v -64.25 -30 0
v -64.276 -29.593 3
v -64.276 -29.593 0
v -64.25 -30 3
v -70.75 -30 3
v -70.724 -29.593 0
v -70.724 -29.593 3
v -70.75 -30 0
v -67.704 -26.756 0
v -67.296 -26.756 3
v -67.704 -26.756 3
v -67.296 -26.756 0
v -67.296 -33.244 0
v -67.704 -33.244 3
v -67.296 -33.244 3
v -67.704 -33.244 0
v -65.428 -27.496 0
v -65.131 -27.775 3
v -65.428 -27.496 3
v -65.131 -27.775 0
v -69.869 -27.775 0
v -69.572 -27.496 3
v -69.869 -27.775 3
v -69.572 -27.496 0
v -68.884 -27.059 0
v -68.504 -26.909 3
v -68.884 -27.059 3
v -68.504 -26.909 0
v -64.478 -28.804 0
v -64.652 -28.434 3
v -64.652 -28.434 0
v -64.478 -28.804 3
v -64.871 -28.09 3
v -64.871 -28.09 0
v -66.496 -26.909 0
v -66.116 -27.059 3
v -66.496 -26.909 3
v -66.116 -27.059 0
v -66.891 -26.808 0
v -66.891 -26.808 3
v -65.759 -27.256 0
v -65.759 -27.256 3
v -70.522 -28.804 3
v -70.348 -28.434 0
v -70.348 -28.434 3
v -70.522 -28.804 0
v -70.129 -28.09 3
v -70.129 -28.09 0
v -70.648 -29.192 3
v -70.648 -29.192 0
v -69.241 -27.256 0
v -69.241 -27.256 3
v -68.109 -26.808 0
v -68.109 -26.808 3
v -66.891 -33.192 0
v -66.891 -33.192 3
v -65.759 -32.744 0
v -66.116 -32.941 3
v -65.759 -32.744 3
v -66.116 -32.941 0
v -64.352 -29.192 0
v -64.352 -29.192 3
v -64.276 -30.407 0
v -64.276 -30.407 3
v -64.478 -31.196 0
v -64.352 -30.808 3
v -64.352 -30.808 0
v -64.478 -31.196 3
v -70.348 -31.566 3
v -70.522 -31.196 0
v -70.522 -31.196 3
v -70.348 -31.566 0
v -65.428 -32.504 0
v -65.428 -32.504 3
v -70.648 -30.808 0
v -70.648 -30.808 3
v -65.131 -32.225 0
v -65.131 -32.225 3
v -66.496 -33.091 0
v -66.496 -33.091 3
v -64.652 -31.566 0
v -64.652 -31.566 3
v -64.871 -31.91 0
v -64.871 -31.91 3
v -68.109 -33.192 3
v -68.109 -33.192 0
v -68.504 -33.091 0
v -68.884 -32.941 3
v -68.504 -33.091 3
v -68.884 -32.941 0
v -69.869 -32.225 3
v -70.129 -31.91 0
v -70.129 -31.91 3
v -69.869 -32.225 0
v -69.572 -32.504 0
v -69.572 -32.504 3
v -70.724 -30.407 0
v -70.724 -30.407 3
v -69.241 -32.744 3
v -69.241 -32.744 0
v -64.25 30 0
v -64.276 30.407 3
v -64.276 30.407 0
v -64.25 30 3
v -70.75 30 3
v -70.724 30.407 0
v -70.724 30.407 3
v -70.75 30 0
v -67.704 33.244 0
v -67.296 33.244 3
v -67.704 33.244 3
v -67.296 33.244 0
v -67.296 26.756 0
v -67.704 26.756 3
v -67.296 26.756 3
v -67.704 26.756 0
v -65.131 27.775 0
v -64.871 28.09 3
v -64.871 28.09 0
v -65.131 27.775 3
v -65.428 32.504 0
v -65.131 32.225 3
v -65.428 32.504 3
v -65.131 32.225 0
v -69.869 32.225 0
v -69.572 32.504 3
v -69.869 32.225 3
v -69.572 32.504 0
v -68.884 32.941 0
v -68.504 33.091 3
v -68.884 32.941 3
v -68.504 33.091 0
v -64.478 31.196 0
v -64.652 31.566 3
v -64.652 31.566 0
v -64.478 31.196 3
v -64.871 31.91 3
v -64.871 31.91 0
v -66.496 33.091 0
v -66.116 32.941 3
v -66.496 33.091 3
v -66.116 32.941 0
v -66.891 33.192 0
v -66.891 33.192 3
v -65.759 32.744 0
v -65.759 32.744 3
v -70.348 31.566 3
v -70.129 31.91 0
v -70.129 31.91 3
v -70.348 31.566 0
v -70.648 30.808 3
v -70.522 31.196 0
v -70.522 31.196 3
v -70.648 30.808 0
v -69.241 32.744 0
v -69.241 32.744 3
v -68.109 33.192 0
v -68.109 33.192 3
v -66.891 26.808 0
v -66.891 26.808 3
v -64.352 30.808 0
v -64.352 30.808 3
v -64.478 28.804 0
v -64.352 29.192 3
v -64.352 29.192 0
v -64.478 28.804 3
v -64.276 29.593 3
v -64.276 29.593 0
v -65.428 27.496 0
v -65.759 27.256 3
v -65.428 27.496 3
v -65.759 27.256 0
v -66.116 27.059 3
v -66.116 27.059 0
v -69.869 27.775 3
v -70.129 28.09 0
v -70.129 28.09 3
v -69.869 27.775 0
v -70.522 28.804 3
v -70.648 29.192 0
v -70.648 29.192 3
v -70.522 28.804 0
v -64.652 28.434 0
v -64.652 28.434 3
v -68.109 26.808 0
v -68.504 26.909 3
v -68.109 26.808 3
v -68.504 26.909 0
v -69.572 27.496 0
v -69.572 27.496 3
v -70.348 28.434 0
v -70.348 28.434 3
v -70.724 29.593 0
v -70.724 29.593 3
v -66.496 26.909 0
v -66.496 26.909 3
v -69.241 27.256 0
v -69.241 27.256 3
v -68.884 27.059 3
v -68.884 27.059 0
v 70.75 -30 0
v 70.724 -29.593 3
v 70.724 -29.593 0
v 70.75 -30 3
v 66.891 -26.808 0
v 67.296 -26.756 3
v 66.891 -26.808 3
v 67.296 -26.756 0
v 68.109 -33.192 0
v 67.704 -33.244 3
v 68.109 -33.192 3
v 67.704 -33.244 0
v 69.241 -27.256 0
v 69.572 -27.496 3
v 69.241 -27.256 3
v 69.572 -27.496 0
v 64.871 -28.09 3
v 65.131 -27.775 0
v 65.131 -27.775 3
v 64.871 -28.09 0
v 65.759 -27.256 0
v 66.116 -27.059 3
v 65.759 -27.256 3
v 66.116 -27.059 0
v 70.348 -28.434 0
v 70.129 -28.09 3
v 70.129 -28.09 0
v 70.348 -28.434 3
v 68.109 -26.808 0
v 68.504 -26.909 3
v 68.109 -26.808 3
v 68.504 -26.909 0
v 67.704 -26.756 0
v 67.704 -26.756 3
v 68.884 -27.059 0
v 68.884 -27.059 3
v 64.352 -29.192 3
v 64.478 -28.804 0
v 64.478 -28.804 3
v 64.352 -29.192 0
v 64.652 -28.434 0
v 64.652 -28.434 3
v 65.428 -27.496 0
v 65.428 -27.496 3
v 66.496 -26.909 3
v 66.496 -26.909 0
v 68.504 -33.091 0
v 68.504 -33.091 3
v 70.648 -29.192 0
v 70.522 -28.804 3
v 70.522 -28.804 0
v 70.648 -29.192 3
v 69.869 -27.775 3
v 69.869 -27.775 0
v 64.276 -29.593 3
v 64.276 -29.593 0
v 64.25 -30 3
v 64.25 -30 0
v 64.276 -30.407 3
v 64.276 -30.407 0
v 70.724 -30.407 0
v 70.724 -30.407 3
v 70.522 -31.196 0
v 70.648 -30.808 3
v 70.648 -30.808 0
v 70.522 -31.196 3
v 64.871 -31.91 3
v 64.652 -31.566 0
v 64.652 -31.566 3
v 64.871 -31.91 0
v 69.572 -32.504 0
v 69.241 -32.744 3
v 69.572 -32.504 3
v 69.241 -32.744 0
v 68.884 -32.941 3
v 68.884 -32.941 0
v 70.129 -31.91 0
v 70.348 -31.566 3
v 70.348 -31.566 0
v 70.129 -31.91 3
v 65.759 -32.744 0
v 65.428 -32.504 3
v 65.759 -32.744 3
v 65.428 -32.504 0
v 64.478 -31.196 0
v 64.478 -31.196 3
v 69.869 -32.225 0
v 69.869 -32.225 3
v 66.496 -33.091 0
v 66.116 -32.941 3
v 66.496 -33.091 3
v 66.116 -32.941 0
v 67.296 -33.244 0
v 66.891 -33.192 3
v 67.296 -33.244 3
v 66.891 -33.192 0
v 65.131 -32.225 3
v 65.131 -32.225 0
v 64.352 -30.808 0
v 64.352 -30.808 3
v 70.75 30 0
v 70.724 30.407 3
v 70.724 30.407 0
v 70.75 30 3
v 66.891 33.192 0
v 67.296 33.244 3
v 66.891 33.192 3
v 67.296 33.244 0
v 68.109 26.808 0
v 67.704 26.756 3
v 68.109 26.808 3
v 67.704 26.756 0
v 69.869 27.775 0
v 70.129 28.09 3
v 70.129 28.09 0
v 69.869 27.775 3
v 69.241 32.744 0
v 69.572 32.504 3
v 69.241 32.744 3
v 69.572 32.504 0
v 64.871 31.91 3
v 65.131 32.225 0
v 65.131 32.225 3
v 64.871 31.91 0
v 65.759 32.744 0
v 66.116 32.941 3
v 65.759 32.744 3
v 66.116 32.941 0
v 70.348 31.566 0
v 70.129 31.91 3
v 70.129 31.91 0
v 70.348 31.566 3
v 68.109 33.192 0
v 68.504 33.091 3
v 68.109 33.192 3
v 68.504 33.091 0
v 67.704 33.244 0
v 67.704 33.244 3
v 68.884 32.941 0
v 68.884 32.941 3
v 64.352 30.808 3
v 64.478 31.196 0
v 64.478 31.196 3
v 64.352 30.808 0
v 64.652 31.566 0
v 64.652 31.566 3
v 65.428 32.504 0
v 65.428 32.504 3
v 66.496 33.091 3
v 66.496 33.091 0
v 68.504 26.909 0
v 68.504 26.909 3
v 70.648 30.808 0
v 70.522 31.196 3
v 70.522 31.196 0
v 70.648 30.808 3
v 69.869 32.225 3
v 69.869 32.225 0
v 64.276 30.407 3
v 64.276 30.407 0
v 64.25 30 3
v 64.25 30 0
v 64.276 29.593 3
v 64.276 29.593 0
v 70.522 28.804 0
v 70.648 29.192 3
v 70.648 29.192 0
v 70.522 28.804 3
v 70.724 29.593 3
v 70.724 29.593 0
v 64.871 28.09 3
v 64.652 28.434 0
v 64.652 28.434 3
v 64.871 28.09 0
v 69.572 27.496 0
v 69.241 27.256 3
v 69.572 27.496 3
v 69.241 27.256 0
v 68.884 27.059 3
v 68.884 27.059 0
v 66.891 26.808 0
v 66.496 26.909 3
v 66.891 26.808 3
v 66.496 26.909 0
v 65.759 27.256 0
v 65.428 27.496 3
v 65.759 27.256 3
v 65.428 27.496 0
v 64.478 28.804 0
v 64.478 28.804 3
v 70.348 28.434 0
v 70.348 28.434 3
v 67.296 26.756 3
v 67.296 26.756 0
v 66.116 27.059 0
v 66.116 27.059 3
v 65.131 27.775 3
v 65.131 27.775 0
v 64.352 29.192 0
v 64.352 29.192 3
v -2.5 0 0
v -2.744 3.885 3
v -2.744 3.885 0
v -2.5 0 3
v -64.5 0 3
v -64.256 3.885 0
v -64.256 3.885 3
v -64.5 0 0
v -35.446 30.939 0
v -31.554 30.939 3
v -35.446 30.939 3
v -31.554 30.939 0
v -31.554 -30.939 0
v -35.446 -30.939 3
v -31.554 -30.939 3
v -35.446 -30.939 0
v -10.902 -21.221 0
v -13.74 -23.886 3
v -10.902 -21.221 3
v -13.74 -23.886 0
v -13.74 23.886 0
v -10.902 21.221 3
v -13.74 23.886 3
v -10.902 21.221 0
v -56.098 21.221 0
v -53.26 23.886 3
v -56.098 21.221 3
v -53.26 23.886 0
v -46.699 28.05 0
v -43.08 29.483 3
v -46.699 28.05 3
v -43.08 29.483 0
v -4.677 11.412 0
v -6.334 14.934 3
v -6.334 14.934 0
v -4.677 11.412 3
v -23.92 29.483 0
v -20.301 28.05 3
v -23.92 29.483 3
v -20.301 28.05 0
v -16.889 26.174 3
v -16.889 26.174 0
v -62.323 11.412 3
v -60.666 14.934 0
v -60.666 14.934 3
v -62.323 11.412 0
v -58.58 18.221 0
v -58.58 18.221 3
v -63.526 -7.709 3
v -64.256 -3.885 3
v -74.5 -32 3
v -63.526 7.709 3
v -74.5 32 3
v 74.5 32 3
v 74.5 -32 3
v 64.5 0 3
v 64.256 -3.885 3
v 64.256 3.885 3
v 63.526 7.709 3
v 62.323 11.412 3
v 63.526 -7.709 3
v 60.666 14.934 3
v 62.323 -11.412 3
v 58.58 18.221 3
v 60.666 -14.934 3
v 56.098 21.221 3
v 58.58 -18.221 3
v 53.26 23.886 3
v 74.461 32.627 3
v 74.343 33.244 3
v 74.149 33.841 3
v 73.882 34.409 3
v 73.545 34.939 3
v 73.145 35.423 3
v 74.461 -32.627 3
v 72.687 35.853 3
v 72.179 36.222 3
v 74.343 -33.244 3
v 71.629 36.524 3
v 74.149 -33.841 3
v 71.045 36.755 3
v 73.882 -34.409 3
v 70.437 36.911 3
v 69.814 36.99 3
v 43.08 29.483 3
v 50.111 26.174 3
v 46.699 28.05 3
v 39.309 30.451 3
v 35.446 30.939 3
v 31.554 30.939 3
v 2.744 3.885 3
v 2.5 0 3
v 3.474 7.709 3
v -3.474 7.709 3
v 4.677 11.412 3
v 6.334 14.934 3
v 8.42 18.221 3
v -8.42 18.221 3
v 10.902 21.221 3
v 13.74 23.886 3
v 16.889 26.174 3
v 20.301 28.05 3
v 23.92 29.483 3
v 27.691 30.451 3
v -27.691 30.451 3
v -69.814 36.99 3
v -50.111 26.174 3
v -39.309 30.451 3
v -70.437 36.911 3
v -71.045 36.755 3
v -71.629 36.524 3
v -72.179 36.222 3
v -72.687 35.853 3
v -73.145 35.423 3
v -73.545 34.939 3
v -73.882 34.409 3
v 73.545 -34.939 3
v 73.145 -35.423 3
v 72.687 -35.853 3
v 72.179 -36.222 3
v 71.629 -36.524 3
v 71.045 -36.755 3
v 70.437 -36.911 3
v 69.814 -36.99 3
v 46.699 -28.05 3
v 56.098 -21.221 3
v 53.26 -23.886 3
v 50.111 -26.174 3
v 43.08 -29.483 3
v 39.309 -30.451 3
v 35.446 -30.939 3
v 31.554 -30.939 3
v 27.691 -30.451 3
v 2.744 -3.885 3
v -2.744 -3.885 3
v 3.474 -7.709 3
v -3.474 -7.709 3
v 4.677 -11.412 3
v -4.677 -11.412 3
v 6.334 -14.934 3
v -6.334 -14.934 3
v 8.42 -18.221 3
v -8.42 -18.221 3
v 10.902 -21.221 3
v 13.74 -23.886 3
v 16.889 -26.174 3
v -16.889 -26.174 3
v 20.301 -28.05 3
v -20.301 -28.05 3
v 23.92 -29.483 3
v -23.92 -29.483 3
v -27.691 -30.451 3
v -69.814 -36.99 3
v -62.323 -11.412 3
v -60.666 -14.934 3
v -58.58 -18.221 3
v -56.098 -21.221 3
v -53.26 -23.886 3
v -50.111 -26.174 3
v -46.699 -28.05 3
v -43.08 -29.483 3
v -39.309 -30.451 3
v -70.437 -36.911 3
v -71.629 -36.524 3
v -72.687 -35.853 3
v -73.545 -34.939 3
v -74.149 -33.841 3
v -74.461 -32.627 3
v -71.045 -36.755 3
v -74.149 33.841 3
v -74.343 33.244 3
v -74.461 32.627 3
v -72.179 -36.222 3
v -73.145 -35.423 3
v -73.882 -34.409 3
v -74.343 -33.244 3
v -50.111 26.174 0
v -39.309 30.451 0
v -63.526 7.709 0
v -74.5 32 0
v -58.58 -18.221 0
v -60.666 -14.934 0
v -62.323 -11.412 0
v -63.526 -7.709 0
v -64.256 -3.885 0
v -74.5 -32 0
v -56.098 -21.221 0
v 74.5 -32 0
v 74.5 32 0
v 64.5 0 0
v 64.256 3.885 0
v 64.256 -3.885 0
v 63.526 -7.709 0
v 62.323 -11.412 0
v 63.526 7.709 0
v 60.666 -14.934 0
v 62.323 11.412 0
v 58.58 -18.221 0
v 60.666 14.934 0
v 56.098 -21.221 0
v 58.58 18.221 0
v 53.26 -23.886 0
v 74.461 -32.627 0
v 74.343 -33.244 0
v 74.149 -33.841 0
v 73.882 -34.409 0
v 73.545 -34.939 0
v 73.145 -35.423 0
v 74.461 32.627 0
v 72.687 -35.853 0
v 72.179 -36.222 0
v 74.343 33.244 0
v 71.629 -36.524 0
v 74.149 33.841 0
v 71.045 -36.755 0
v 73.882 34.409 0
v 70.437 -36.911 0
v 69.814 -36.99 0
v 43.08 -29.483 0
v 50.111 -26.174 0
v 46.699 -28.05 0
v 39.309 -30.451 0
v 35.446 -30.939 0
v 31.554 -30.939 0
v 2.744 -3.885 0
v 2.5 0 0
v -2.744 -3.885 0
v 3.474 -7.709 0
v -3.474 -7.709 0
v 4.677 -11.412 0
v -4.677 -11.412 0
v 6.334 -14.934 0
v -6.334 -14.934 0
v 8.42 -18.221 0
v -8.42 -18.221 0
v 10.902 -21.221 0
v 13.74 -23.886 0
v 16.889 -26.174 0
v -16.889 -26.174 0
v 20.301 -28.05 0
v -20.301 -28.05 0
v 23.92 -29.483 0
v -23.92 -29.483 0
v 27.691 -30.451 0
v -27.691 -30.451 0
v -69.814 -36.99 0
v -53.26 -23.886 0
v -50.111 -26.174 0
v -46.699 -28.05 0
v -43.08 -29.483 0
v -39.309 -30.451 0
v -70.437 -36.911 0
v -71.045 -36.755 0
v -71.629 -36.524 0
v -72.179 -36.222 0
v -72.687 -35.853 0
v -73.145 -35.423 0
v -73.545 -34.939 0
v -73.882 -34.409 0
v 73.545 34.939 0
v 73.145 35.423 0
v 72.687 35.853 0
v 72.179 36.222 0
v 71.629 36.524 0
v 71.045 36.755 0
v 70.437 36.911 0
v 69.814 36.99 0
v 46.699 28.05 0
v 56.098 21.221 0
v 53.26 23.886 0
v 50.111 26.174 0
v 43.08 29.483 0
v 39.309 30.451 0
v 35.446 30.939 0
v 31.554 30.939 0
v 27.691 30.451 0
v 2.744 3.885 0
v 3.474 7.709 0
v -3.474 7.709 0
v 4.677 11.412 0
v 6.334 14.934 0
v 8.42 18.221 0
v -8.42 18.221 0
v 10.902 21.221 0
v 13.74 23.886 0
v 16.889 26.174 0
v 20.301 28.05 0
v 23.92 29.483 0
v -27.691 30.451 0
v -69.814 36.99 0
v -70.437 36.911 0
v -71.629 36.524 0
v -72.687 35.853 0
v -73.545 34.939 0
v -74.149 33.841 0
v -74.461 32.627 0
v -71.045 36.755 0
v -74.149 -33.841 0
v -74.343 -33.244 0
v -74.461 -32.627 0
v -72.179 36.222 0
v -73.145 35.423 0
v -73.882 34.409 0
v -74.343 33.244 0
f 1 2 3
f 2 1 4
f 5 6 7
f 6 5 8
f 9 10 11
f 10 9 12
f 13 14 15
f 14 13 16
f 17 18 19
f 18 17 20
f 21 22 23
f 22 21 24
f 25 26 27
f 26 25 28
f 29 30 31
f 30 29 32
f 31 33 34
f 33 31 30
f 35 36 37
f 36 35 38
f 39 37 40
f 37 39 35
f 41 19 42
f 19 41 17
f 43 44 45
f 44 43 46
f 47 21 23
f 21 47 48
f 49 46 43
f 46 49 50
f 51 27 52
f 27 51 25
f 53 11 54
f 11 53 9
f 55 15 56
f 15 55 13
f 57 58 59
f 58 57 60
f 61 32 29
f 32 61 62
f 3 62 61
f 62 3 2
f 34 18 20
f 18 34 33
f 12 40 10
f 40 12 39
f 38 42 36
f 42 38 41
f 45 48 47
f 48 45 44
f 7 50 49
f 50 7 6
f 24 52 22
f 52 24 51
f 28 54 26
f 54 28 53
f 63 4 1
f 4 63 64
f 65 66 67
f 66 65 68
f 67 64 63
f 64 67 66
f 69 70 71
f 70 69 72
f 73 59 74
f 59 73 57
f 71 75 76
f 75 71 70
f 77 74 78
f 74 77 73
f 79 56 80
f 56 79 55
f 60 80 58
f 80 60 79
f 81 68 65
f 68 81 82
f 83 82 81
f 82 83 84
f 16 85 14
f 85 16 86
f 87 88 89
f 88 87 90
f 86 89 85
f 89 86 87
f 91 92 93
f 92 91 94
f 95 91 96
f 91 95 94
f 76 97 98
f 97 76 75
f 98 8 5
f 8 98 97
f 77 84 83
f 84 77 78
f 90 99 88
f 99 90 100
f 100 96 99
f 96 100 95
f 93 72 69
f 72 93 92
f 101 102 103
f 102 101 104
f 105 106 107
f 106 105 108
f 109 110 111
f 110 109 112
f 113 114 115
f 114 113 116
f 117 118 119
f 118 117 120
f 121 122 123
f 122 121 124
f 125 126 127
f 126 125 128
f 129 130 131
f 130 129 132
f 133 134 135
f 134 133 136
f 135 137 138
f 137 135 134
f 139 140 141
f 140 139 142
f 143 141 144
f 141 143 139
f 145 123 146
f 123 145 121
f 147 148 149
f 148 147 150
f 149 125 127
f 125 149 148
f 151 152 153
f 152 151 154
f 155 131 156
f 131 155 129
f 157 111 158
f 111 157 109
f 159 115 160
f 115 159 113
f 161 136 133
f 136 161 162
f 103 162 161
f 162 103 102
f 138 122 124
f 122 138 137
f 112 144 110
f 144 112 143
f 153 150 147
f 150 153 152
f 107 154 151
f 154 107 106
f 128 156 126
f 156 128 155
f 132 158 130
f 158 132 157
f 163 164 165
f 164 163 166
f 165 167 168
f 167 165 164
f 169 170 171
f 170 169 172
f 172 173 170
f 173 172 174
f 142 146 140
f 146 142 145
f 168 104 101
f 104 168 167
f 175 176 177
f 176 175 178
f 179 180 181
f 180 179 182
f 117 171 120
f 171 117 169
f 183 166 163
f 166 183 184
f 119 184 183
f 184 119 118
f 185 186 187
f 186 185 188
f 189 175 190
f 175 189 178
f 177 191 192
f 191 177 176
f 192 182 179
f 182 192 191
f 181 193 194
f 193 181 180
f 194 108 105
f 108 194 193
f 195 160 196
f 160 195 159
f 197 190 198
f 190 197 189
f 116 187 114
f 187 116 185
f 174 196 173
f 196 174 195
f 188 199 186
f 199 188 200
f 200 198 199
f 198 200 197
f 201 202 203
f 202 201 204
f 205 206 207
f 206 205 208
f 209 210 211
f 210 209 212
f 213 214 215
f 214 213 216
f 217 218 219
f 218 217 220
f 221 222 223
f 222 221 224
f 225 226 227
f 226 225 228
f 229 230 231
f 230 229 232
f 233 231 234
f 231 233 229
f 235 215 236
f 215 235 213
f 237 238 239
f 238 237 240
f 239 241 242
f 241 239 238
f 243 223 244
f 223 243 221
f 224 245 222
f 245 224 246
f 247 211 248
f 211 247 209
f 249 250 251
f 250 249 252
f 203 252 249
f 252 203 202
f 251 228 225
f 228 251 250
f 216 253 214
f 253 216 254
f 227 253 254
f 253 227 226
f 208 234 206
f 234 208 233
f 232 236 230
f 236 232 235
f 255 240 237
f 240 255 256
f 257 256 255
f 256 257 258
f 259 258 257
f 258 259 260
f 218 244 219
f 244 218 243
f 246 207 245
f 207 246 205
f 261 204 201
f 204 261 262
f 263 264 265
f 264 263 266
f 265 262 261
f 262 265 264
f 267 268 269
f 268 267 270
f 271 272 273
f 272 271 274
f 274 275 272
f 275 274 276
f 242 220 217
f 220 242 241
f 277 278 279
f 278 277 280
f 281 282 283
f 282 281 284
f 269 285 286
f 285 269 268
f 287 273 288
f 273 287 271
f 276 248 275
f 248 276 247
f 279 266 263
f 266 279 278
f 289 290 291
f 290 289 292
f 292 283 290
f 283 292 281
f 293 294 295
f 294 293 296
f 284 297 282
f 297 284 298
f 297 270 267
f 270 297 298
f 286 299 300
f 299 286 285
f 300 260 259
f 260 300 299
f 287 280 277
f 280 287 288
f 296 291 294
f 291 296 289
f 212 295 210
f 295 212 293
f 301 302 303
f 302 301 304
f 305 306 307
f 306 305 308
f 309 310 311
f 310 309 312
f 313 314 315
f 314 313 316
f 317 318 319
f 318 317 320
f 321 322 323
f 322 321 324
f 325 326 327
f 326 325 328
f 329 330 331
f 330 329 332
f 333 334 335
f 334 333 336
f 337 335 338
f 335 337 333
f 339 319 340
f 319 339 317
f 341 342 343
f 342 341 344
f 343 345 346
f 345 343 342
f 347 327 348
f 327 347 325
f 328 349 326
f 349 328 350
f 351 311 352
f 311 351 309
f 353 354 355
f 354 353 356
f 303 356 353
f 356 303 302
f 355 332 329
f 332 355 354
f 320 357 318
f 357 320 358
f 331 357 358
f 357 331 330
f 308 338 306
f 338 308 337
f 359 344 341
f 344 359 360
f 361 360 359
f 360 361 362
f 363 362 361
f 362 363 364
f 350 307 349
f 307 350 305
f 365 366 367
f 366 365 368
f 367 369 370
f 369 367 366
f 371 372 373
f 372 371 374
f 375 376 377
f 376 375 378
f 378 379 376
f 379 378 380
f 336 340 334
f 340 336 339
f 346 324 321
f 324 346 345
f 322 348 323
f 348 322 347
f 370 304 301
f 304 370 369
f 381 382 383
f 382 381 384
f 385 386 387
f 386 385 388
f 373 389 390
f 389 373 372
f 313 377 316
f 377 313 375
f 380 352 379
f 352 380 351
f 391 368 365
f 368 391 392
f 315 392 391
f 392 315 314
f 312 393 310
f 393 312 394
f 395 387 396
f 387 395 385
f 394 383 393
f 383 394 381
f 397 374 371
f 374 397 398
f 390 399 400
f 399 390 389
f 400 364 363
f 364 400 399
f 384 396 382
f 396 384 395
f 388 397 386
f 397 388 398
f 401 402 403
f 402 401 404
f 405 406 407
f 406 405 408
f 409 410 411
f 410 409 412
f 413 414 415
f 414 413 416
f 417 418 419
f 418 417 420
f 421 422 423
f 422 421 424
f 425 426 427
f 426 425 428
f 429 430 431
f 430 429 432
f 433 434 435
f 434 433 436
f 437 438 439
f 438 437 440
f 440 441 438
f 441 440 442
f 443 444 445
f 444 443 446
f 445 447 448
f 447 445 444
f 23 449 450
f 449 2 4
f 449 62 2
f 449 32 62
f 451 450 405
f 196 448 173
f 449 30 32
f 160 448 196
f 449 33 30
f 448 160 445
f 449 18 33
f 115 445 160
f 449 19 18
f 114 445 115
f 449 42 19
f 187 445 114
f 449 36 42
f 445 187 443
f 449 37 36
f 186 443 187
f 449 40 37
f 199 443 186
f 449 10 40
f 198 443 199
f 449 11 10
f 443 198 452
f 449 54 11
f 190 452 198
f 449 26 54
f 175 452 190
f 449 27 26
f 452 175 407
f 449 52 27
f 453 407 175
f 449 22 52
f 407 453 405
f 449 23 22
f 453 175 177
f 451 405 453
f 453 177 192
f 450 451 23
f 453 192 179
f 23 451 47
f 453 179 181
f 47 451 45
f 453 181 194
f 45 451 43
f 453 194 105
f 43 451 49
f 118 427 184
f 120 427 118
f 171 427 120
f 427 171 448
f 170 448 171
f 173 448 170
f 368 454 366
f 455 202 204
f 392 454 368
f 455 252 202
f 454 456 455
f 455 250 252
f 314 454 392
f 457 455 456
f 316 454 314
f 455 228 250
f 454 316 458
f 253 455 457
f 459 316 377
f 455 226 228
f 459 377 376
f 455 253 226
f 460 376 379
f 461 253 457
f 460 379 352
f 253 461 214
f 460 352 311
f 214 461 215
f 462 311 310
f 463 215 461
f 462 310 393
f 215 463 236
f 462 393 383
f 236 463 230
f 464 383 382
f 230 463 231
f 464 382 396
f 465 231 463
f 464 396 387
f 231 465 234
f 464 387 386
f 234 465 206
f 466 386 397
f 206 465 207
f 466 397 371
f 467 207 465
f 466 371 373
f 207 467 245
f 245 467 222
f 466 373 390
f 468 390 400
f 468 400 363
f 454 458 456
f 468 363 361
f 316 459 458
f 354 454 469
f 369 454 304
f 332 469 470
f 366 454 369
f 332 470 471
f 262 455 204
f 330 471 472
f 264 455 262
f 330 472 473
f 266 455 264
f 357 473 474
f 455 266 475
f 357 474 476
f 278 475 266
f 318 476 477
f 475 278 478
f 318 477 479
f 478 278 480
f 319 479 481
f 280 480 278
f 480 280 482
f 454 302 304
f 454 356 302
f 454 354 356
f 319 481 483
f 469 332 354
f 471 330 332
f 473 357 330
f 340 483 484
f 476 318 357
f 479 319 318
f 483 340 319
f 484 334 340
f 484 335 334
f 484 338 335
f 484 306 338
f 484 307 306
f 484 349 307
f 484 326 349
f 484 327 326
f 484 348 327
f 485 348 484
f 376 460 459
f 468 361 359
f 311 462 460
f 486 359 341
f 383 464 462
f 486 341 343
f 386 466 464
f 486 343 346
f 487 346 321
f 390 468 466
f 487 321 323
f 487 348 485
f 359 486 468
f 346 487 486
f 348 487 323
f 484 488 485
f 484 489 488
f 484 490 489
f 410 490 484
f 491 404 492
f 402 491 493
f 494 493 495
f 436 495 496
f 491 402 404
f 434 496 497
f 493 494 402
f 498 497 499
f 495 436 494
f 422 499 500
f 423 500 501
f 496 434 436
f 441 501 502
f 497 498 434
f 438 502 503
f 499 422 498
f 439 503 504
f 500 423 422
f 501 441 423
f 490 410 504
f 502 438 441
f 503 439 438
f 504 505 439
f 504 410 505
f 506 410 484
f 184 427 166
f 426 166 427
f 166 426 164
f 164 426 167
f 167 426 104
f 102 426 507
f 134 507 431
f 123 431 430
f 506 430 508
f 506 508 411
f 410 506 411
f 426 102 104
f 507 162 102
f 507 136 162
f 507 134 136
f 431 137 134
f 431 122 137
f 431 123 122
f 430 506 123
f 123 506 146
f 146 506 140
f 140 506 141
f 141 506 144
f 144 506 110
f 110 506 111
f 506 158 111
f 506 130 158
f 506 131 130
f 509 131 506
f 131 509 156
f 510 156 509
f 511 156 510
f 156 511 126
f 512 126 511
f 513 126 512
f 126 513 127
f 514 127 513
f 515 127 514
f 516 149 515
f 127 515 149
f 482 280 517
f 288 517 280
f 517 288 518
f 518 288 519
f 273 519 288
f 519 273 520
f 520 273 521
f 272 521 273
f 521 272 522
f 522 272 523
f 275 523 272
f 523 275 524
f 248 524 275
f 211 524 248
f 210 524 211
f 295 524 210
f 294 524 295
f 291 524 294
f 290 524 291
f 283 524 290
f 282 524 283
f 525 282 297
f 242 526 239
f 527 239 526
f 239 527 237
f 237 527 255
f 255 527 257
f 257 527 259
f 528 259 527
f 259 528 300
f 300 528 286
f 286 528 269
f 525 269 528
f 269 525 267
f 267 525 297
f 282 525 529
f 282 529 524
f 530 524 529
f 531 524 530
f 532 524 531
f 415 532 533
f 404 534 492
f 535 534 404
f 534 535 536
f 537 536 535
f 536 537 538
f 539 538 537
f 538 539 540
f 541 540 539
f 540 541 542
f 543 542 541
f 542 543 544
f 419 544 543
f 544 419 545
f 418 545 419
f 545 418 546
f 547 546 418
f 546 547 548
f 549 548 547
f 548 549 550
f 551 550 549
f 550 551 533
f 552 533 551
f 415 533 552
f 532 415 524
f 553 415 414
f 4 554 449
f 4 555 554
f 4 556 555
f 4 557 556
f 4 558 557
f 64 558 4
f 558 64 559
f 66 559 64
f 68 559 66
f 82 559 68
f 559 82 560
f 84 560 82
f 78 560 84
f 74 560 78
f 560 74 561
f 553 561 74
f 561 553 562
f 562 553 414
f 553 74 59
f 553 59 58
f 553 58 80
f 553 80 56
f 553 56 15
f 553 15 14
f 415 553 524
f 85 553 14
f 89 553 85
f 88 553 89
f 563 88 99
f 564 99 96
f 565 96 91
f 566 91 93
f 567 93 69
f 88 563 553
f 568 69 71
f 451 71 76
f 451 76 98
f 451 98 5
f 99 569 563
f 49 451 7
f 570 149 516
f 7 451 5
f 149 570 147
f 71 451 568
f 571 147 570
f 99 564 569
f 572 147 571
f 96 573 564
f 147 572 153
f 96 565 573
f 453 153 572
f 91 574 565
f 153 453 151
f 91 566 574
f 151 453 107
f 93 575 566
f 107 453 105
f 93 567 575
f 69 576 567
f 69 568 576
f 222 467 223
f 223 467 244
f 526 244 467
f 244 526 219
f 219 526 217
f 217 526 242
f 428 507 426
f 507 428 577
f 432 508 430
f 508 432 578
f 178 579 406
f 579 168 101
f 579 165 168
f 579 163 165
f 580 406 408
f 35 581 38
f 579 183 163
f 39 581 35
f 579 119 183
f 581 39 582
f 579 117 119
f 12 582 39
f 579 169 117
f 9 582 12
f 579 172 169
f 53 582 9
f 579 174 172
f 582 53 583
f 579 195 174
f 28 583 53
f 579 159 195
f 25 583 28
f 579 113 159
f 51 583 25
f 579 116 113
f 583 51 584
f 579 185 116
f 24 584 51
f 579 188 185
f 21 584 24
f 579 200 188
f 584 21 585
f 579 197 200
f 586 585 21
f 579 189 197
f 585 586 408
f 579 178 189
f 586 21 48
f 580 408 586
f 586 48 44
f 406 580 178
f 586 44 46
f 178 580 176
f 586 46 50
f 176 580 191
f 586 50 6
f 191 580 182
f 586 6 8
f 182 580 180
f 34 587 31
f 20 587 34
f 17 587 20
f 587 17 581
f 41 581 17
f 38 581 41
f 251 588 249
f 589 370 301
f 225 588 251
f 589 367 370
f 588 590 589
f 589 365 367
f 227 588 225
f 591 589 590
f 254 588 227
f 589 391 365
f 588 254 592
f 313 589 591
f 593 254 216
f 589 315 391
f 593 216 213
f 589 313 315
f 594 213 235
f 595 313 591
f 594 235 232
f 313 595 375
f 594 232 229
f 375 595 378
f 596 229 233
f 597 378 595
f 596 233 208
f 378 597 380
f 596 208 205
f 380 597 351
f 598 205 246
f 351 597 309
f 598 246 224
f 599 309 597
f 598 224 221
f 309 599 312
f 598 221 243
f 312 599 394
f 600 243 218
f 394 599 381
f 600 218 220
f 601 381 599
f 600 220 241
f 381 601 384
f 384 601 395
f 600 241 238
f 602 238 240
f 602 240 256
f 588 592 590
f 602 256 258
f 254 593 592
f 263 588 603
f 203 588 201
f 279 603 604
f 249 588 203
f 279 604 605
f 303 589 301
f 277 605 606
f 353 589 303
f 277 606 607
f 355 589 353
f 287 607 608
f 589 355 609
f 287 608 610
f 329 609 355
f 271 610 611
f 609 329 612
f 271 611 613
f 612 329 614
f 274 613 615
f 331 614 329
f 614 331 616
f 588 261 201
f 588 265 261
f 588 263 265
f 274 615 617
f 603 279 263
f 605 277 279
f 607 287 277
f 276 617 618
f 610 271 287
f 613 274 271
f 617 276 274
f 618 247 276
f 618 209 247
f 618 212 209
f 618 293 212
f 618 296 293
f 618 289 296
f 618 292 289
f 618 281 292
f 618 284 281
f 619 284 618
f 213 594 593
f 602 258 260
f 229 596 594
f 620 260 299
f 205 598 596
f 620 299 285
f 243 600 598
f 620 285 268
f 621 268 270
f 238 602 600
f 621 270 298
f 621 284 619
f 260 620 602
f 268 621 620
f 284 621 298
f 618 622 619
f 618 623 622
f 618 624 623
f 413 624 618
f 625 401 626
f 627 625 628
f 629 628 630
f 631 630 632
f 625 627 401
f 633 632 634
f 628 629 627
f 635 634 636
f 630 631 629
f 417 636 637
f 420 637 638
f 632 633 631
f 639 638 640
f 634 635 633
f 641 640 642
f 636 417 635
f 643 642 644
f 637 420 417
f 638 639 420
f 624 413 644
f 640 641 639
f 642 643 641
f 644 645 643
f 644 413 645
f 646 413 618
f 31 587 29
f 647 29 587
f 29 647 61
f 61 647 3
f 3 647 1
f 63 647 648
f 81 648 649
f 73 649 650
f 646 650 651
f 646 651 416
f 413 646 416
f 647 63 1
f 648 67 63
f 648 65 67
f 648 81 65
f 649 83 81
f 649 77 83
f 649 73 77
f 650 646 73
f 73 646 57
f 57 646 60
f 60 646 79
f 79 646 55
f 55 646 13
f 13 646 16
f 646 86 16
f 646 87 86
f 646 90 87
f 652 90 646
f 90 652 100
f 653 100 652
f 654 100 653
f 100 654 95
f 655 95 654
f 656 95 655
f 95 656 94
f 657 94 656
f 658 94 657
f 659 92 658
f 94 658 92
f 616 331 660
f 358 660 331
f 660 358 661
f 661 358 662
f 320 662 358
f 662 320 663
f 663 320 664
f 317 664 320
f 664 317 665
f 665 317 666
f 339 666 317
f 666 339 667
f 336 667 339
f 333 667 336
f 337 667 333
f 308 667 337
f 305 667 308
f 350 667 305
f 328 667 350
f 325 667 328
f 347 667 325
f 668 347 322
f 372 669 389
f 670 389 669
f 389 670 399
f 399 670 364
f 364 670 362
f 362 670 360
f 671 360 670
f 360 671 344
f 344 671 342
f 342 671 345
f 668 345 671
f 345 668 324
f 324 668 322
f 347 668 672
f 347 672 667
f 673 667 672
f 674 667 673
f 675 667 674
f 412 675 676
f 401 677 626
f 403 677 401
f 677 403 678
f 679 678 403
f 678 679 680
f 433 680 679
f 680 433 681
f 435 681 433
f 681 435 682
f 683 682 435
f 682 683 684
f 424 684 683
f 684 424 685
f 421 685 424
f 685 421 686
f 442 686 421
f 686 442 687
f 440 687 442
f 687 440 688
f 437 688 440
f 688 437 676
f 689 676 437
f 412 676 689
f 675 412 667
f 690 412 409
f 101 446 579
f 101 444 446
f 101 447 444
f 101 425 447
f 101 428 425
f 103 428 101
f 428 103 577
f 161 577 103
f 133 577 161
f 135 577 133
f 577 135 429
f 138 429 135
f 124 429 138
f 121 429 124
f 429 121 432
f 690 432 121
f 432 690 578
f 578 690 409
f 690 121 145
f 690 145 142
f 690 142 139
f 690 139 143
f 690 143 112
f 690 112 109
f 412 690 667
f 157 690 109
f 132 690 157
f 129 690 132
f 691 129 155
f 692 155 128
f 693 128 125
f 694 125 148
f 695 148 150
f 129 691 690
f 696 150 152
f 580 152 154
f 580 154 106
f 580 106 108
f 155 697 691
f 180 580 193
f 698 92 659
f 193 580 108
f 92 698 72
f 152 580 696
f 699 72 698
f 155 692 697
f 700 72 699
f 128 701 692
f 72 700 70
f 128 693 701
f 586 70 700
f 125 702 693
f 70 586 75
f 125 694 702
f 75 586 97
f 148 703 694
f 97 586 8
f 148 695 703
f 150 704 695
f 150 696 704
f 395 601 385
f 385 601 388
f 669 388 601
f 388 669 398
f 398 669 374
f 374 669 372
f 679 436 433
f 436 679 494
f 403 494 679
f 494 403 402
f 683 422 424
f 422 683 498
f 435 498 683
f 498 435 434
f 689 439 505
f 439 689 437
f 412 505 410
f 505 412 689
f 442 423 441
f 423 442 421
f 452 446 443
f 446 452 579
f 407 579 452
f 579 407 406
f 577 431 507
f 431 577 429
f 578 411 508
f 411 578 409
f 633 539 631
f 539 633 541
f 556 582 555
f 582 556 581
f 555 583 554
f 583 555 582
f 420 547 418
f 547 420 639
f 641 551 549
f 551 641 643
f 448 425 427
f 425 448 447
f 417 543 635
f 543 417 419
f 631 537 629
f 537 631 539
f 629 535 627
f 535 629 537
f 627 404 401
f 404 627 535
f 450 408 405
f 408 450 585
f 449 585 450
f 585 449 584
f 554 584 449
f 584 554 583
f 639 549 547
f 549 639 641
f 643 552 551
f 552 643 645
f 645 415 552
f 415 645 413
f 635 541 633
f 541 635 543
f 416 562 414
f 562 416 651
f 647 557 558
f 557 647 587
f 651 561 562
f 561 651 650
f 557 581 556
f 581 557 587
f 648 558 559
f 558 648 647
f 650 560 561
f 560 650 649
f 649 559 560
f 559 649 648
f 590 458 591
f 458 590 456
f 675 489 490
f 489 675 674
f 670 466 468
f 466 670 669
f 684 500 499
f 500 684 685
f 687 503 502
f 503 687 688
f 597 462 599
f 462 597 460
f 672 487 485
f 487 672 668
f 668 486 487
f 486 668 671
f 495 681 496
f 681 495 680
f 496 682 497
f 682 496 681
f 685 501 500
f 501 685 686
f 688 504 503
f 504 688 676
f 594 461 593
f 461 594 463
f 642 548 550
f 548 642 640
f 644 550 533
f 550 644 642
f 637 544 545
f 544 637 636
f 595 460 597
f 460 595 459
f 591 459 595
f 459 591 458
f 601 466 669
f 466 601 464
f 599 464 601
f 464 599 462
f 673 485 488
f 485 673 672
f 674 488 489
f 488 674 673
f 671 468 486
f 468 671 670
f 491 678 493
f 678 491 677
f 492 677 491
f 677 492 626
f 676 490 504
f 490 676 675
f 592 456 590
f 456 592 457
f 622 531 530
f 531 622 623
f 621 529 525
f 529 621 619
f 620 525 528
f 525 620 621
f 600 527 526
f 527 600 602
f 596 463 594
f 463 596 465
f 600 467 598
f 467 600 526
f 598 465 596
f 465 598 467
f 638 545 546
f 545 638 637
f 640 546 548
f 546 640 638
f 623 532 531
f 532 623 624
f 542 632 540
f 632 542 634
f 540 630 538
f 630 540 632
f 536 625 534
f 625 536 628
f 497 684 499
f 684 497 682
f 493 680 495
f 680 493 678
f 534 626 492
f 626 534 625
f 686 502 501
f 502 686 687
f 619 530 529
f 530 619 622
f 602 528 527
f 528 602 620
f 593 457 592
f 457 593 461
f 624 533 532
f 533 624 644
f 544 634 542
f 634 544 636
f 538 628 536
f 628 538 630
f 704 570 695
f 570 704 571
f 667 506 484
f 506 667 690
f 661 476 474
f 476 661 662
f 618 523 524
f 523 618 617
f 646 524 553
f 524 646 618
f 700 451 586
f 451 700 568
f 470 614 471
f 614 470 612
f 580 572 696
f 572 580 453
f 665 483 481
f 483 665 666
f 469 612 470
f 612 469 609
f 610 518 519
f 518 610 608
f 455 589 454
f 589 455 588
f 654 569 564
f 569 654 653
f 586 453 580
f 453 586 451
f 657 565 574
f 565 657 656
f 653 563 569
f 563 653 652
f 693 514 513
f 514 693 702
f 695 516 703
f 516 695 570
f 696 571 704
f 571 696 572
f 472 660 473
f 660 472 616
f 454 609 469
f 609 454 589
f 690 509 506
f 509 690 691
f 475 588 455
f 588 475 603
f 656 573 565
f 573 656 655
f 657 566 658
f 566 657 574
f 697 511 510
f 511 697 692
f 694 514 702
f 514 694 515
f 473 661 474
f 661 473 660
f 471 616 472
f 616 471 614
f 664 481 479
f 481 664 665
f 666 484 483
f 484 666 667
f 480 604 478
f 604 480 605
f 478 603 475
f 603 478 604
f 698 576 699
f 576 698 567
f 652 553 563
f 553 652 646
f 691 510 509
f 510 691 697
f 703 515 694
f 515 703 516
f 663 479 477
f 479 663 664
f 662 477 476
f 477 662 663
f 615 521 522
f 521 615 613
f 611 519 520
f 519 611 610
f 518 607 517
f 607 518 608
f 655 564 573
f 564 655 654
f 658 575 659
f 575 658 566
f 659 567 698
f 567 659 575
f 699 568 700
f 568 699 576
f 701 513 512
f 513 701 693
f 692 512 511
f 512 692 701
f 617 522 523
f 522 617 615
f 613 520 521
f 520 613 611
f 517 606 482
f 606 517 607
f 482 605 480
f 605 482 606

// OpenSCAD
$fn = 50;


difference() {
	union() {
		hull() {
			translate(v = [-69.5000000000, 32.0000000000, 0]) {
				cylinder(h = 3, r = 5);
			}
			translate(v = [69.5000000000, 32.0000000000, 0]) {
				cylinder(h = 3, r = 5);
			}
			translate(v = [-69.5000000000, -32.0000000000, 0]) {
				cylinder(h = 3, r = 5);
			}
			translate(v = [69.5000000000, -32.0000000000, 0]) {
				cylinder(h = 3, r = 5);
			}
		}
	}
	union() {
		#translate(v = [-67.5000000000, -30.0000000000, -100.0000000000]) {
			cylinder(h = 200, r = 3.2500000000);
		}
		#translate(v = [-67.5000000000, 30.0000000000, -100.0000000000]) {
			cylinder(h = 200, r = 3.2500000000);
		}
		#translate(v = [67.5000000000, -30.0000000000, -100.0000000000]) {
			cylinder(h = 200, r = 3.2500000000);
		}
		#translate(v = [67.5000000000, 30.0000000000, -100.0000000000]) {
			cylinder(h = 200, r = 3.2500000000);
		}
		#translate(v = [-33.5000000000, 0, 0]) {
			cylinder(h = 3, r = 31.0000000000);
		}
		#translate(v = [33.5000000000, 0, 0]) {
			cylinder(h = 3, r = 31.0000000000);
		}
	}
}
